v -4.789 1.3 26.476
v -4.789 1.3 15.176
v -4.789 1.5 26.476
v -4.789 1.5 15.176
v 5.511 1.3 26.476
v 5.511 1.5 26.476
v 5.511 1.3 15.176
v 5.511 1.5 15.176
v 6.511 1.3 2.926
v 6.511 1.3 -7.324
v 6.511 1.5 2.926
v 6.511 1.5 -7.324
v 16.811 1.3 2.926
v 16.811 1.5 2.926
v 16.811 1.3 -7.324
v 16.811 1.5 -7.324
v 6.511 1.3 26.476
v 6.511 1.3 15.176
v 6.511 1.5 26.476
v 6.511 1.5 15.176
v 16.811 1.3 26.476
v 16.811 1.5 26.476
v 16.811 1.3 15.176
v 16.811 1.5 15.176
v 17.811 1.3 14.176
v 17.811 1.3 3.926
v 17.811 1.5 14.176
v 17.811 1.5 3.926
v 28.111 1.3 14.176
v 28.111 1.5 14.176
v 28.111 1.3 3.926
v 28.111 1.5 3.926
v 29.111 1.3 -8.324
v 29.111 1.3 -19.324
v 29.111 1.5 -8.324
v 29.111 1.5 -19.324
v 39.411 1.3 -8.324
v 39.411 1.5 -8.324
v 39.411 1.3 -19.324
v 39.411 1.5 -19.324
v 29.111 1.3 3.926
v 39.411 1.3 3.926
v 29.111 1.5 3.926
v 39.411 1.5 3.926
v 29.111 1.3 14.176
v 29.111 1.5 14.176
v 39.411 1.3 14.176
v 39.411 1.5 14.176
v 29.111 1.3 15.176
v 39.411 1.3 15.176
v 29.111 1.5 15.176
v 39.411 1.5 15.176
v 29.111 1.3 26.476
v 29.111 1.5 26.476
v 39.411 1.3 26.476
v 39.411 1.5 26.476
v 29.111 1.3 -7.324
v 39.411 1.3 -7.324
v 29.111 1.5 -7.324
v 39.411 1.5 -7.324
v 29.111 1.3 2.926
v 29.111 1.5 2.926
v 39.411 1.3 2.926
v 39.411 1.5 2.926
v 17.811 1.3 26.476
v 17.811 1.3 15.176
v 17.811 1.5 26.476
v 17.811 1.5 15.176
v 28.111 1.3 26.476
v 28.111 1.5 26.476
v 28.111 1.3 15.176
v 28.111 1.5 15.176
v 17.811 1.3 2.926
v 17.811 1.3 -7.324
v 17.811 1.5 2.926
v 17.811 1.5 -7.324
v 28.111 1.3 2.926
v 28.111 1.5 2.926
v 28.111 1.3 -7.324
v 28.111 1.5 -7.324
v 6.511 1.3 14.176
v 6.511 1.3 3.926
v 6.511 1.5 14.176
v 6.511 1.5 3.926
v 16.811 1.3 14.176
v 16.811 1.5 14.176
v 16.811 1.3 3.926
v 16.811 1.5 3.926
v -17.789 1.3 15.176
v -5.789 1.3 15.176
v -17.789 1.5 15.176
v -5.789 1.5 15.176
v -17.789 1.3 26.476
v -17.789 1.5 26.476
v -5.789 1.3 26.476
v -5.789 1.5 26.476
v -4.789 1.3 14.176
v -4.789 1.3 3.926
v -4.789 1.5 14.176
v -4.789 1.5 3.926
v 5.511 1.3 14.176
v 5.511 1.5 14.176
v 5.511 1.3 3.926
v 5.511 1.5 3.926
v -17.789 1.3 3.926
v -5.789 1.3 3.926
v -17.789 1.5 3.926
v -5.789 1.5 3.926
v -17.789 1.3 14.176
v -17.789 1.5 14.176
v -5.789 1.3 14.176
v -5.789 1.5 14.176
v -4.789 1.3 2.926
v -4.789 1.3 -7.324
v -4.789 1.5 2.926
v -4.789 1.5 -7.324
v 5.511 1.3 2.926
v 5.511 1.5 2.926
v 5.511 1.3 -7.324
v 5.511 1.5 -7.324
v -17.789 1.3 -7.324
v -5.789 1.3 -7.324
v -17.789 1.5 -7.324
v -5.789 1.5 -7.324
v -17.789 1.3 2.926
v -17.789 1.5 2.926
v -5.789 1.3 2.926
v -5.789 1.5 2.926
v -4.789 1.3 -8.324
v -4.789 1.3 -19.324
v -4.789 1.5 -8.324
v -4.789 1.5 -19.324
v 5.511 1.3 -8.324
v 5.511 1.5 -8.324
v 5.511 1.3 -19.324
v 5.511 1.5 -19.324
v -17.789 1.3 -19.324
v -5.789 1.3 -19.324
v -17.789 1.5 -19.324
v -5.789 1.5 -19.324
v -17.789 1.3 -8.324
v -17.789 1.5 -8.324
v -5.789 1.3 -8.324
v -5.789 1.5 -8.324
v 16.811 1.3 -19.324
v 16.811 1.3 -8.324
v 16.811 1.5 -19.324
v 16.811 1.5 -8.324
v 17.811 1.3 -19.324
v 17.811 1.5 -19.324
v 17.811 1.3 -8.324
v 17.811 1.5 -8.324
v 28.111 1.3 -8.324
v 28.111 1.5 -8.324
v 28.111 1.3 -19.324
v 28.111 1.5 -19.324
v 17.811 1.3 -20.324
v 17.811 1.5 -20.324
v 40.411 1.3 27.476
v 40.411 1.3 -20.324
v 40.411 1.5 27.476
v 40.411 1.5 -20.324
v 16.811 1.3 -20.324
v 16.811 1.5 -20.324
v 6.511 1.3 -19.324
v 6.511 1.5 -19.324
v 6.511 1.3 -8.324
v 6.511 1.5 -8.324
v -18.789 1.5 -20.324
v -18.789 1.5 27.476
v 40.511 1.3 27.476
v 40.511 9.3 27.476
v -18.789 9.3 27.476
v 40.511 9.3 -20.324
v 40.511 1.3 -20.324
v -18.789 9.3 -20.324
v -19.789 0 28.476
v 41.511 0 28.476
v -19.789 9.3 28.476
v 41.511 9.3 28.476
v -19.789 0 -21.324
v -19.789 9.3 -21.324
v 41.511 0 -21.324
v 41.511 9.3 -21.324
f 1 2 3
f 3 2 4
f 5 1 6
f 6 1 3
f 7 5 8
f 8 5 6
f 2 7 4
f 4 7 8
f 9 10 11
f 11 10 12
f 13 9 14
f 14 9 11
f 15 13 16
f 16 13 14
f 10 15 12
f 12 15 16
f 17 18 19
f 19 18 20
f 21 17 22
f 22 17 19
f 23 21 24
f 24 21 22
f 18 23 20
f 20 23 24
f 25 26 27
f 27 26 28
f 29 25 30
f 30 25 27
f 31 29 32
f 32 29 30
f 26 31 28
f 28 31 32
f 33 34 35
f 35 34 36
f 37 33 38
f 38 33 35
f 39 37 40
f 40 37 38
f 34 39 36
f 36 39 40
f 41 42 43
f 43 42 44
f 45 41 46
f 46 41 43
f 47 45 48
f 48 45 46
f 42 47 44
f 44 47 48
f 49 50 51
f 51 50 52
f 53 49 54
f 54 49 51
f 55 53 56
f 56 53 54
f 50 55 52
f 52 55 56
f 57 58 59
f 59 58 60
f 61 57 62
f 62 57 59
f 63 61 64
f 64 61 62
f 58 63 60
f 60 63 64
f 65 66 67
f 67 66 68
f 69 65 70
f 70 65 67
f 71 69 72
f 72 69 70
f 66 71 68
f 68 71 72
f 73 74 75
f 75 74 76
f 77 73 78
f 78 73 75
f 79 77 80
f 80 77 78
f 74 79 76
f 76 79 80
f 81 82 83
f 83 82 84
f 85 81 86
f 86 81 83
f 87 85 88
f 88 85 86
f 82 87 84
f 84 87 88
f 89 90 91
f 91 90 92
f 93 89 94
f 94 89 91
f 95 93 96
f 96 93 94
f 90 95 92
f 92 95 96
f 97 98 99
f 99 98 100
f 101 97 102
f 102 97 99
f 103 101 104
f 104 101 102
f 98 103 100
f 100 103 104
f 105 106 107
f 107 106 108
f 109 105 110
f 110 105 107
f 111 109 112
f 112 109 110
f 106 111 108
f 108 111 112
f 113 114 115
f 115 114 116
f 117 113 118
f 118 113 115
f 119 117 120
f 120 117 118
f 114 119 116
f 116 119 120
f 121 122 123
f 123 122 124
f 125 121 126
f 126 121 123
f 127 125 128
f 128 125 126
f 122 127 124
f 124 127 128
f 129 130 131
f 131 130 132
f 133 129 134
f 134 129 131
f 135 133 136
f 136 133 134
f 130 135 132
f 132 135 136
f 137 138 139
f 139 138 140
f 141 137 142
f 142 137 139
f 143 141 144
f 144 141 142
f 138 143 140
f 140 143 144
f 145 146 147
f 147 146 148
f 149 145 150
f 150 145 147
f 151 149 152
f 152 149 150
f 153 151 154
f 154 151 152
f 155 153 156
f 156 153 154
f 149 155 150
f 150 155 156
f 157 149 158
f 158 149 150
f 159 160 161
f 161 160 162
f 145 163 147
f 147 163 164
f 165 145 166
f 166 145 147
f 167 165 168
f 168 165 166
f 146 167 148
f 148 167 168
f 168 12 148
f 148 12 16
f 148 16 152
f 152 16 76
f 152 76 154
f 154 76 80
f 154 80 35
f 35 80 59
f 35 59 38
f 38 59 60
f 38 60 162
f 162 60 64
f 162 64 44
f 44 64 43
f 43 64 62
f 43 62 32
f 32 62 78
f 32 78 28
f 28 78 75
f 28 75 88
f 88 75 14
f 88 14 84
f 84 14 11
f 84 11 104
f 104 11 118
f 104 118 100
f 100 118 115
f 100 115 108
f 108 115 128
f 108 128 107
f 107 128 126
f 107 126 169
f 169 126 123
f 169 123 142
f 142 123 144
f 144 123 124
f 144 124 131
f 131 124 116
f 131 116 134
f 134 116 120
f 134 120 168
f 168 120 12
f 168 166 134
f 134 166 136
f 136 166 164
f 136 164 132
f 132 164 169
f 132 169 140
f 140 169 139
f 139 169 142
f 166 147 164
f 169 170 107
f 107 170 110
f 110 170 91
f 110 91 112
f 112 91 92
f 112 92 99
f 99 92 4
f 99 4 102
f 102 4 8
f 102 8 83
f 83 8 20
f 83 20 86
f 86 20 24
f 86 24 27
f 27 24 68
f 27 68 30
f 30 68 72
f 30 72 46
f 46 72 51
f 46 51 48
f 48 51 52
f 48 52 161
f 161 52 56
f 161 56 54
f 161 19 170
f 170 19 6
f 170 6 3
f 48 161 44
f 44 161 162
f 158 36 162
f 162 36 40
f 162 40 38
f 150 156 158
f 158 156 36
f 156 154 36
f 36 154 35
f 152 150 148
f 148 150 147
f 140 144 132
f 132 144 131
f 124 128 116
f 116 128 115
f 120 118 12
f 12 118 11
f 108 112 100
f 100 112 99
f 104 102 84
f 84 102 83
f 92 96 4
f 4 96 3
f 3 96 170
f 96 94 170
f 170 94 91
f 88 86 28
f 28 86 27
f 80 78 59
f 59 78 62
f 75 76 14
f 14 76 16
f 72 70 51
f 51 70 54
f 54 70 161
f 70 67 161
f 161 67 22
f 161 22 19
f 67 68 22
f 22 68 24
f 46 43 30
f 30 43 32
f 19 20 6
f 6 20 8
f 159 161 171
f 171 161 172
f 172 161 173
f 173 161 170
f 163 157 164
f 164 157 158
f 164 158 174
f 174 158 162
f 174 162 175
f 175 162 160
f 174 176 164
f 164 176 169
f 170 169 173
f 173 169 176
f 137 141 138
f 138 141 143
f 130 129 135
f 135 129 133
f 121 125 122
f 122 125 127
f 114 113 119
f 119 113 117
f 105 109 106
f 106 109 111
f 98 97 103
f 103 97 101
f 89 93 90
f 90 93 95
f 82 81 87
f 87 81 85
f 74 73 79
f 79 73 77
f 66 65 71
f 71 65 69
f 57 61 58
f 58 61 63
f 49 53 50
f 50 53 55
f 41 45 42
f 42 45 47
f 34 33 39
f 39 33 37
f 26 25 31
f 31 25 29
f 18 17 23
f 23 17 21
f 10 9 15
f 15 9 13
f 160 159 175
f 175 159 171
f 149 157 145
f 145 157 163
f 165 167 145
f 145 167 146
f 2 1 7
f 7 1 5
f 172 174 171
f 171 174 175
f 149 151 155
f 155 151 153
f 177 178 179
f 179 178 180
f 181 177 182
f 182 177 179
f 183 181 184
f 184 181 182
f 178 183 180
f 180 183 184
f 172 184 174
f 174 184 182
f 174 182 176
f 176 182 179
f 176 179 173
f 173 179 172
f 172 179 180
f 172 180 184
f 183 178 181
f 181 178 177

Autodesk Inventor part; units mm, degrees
ref_plane "YZ Plane" through (0, 0, 0) normal (1, 0, 0) x (0, 1, 0)
ref_plane "XZ Plane" through (0, 0, 0) normal (0, 1, 0) x (-1, 0, 0)
ref_plane "XY Plane" through (0, 0, 0) normal (0, 0, 1) x (1, 0, 0)
sketch "Sketch1" plane through (0, 0, 0) normal (0, 1, 0) x (-1, 0, 0)
  line L0 (19.7891, 28.4759) -> (-41.5109, 28.4759)
  line L1 (-41.5109, 28.4759) -> (-41.5109, -21.3241)
  line L2 (-41.5109, -21.3241) -> (19.7891, -21.3241)
  line L3 (19.7891, -21.3241) -> (19.7891, 28.4759)
  point P0 (0, 0)
  dimension "d0" = 49.8
  dimension "d1" = 61.3
extrude "Extrusion1" add sketch "Sketch1" along normal blind 9.3
sketch "Sketch2" plane through (0, 9.3, 0) normal (0, 1, 0) x (1, 0, 0)
  line L0 (-18.7891, 20.3241) -> (40.5109, 20.3241)
  line L1 (40.5109, 20.3241) -> (40.5109, -27.4759)
  line L2 (40.5109, -27.4759) -> (-18.7891, -27.4759)
  line L3 (-18.7891, -27.4759) -> (-18.7891, 20.3241)
  line L4 (41.5109, 21.3241) -> (-19.7891, 21.3241) projected
  line L5 (-19.7891, 21.3241) -> (-19.7891, -28.4759) projected
  point P0 (0, 0)
  dimension "d4" = 59.3
  dimension "d5" = 47.8
  dimension "d6" = 1
  dimension "d7" = 1
extrude "Extrusion2" cut sketch "Sketch2" against normal blind 8
sketch "Sketch3" plane through (0, 1.3, 0) normal (0, 1, 0) x (1, 0, 0)
  line L0 (-18.7891, 20.3241) -> (40.5109, 20.3241) projected
  line L1 (40.5109, -27.4759) -> (-18.7891, -27.4759) projected
  line L2 (-18.7891, 20.3241) -> (-17.7891, 20.3241)
  line L3 (-17.7891, 20.3241) -> (-17.7891, -27.4759)
  line L4 (-17.7891, -27.4759) -> (-18.7891, -27.4759)
  line L5 (-18.7891, -27.4759) -> (-18.7891, 20.3241)
  line L6 (-4.7891, 20.3241) -> (-5.7891, 20.3241)
  line L7 (-5.7891, 20.3241) -> (-5.7891, -27.4759)
  line L8 (-5.7891, -27.4759) -> (-4.7891, -27.4759)
  line L9 (-4.7891, -27.4759) -> (-4.7891, 20.3241)
  line L10 (-17.7891, 8.3241) -> (-5.7891, 8.3241)
  line L11 (-5.7891, 8.3241) -> (-5.7891, 7.3241)
  line L12 (-5.7891, 7.3241) -> (-17.7891, 7.3241)
  line L13 (-17.7891, 7.3241) -> (-17.7891, 8.3241)
  line L14 (-17.7891, -2.9259) -> (-5.7891, -2.9259)
  line L15 (-5.7891, -2.9259) -> (-5.7891, -3.9259)
  line L16 (-5.7891, -3.9259) -> (-17.7891, -3.9259)
  line L17 (-17.7891, -3.9259) -> (-17.7891, -2.9259)
  line L18 (-17.7891, -14.1759) -> (-5.7891, -14.1759)
  line L19 (-5.7891, -14.1759) -> (-5.7891, -15.1759)
  line L20 (-5.7891, -15.1759) -> (-17.7891, -15.1759)
  line L21 (-17.7891, -15.1759) -> (-17.7891, -14.1759)
  line L22 (-19.7891, 21.3241) -> (-19.7891, -28.4759) projected
  line L23 (-17.7891, 20.3241) -> (-5.7891, 20.3241)
  line L24 (-5.7891, 20.3241) -> (-5.7891, 19.3241)
  line L25 (-5.7891, 19.3241) -> (-17.7891, 19.3241)
  line L26 (-17.7891, 19.3241) -> (-17.7891, 20.3241)
  line L27 (-17.7891, -26.4759) -> (-5.7891, -26.4759)
  line L28 (-5.7891, -26.4759) -> (-5.7891, -27.4759)
  line L29 (-5.7891, -27.4759) -> (-17.7891, -27.4759)
  line L30 (-17.7891, -27.4759) -> (-17.7891, -26.4759)
  line L31 (5.5109, 19.3241) -> (-6.4891, 19.3241)
  line L32 (6.5109, -27.4759) -> (6.5109, 20.3241)
  line L33 (5.5109, 20.3241) -> (5.5109, -27.4759)
  line L34 (-6.4891, 8.3241) -> (5.5109, 8.3241)
  line L35 (5.5109, 7.3241) -> (-6.4891, 7.3241)
  line L36 (-6.4891, -2.9259) -> (5.5109, -2.9259)
  line L37 (5.5109, -3.9259) -> (-6.4891, -3.9259)
  line L38 (-6.4891, -14.1759) -> (5.5109, -14.1759)
  line L39 (5.5109, -15.1759) -> (-6.4891, -15.1759)
  line L40 (-6.4891, -26.4759) -> (5.5109, -26.4759)
  line L41 (5.5109, -27.4759) -> (-6.4891, -27.4759)
  line L42 (16.8109, 19.3241) -> (4.8109, 19.3241)
  line L43 (17.8109, -27.4759) -> (17.8109, 20.3241)
  line L44 (16.8109, 20.3241) -> (16.8109, -27.4759)
  line L45 (4.8109, 8.3241) -> (16.8109, 8.3241)
  line L46 (16.8109, 7.3241) -> (4.8109, 7.3241)
  line L47 (4.8109, -2.9259) -> (16.8109, -2.9259)
  line L48 (16.8109, -3.9259) -> (4.8109, -3.9259)
  line L49 (4.8109, -14.1759) -> (16.8109, -14.1759)
  line L50 (16.8109, -15.1759) -> (4.8109, -15.1759)
  line L51 (4.8109, -26.4759) -> (16.8109, -26.4759)
  line L52 (16.8109, -27.4759) -> (4.8109, -27.4759)
  line L53 (28.1109, 19.3241) -> (16.1109, 19.3241)
  line L54 (29.1109, -27.4759) -> (29.1109, 20.3241)
  line L55 (28.1109, 20.3241) -> (28.1109, -27.4759)
  line L56 (16.1109, 8.3241) -> (28.1109, 8.3241)
  line L57 (28.1109, 7.3241) -> (16.1109, 7.3241)
  line L58 (16.1109, -2.9259) -> (28.1109, -2.9259)
  line L59 (28.1109, -3.9259) -> (16.1109, -3.9259)
  line L60 (16.1109, -14.1759) -> (28.1109, -14.1759)
  line L61 (28.1109, -15.1759) -> (16.1109, -15.1759)
  line L62 (16.1109, -26.4759) -> (28.1109, -26.4759)
  line L63 (28.1109, -27.4759) -> (16.1109, -27.4759)
  line L64 (39.4109, 19.3241) -> (27.4109, 19.3241)
  line L65 (40.4109, -27.4759) -> (40.4109, 20.3241)
  line L66 (39.4109, 20.3241) -> (39.4109, -27.4759)
  line L67 (27.4109, 8.3241) -> (39.4109, 8.3241)
  line L68 (39.4109, 7.3241) -> (27.4109, 7.3241)
  line L69 (27.4109, -2.9259) -> (39.4109, -2.9259)
  line L70 (39.4109, -3.9259) -> (27.4109, -3.9259)
  line L71 (27.4109, -14.1759) -> (39.4109, -14.1759)
  line L72 (39.4109, -15.1759) -> (27.4109, -15.1759)
  line L73 (27.4109, -26.4759) -> (39.4109, -26.4759)
  line L74 (39.4109, -27.4759) -> (27.4109, -27.4759)
  point P0 (0, 0)
  point P1 (-11.7891, 8.3241)
  point P2 (-0.4891, 8.3241)
  point P3 (10.8109, 8.3241)
  point P4 (22.1109, 8.3241)
  point P5 (33.4109, 8.3241)
  point P6 (-18.7891, -27.4759)
  point P7 (40.4109, 20.3241)
  point P8 (17.8109, 20.3241)
  point P9 (17.8109, 19.3241)
  point P10 (17.8109, 8.3241)
  point P11 (6.5109, 8.3241)
  point P12 (6.5109, 19.3241)
  point P13 (-4.7891, 19.3241)
  point P14 (-4.7891, 8.3241)
  point P15 (-4.7891, 7.3241)
  point P16 (-4.7891, -2.9259)
  point P17 (-4.7891, -3.9259)
  point P18 (-4.7891, -14.1759)
  point P19 (6.5109, -3.9259)
  point P20 (6.5109, -14.1759)
  point P21 (17.8109, 7.3241)
  point P22 (17.8109, -2.9259)
  point P23 (17.8109, -15.1759)
  point P24 (17.8109, -26.4759)
  point P25 (29.1109, -2.9259)
  point P26 (29.1109, 7.3241)
  point P27 (29.1109, -26.4759)
  point P28 (29.1109, -15.1759)
  point P29 (29.1109, -14.1759)
  point P30 (29.1109, -3.9259)
  point P31 (29.1109, 19.3241)
  point P32 (29.1109, 8.3241)
  point P33 (17.8109, -3.9259)
  point P34 (17.8109, -14.1759)
  point P35 (6.5109, -15.1759)
  point P36 (6.5109, -26.4759)
  point P37 (6.5109, 7.3241)
  point P38 (6.5109, -2.9259)
  point P39 (-4.7891, -15.1759)
  point P40 (-4.7891, -26.4759)
  dimension "d10" = 1
  dimension "d12" = 1
  dimension "d13" = 12
  dimension "d14" = 1
  dimension "d15" = 12
  dimension "d16" = 1
  dimension "d17" = 1
  dimension "d18" = 10.25
  dimension "d19" = 10.25
  dimension "d20" = 2
  dimension "d21" = 1
  dimension "d22" = 1
  dimension "d25" = 11.3
extrude "Extrusion3" add sketch "Sketch3" along normal blind 0.2 contours L0 L3 L1 L5 | L0 L7 L25 L3 | L0 L9 L31 L7 | L3 L27 L7 L1 | L0 L33 L31 L9 | L31 L9 L34 L7 | L10 L7 L12 L3 | L0 L32 L42 L33 | L34 L9 L35 L7 | L7 L40 L9 L1 | L3 L18 L7 L20 | L0 L44 L42 L32 | L42 L32 L45 L33 | L34 L33 L35 L9 | L35 L9 L36 L7 | L14 L7 L16 L3 | L9 L40 L33 L1 | L7 L39 L9 L40 | L45 L32 L46 L33 | L36 L9 L37 L7 | L7 L38 L9 L39 | L0 L55 L53 L43 | L53 L43 L56 L44 | L45 L44 L46 L32 | L46 L32 L47 L33 | L36 L33 L37 L9 | L37 L9 L38 L7 | L33 L51 L32 L1 | L9 L38 L33 L39 | L0 L54 L64 L55 | L56 L43 L57 L44 | L47 L32 L48 L33 | L32 L51 L44 L1 | L33 L50 L32 L51 | L0 L66 L64 L54 | L64 L54 L67 L55 | L56 L55 L57 L43 | L57 L43 L58 L44 | L47 L44 L48 L32 | L48 L32 L49 L33 | L33 L49 L32 L50 | L0 L65 L1 L66 | L67 L54 L68 L55 | L58 L43 L59 L44 | L44 L62 L43 L1 | L32 L49 L44 L50 | L67 L66 L68 L54 | L68 L54 L69 L55 | L58 L55 L59 L43 | L59 L43 L60 L44 | L43 L62 L55 L1 | L44 L61 L43 L62 | L69 L54 L70 L55 | L60 L43 L61 L44 | L1 L54 L73 L66 | L69 L66 L70 L54 | L70 L54 L71 L55 | L60 L55 L61 L43 | L55 L73 L54 L1 | L71 L54 L72 L55 | L55 L72 L54 L73 | L72 L54 L71 L66
properties part number "PanHolderLid"
